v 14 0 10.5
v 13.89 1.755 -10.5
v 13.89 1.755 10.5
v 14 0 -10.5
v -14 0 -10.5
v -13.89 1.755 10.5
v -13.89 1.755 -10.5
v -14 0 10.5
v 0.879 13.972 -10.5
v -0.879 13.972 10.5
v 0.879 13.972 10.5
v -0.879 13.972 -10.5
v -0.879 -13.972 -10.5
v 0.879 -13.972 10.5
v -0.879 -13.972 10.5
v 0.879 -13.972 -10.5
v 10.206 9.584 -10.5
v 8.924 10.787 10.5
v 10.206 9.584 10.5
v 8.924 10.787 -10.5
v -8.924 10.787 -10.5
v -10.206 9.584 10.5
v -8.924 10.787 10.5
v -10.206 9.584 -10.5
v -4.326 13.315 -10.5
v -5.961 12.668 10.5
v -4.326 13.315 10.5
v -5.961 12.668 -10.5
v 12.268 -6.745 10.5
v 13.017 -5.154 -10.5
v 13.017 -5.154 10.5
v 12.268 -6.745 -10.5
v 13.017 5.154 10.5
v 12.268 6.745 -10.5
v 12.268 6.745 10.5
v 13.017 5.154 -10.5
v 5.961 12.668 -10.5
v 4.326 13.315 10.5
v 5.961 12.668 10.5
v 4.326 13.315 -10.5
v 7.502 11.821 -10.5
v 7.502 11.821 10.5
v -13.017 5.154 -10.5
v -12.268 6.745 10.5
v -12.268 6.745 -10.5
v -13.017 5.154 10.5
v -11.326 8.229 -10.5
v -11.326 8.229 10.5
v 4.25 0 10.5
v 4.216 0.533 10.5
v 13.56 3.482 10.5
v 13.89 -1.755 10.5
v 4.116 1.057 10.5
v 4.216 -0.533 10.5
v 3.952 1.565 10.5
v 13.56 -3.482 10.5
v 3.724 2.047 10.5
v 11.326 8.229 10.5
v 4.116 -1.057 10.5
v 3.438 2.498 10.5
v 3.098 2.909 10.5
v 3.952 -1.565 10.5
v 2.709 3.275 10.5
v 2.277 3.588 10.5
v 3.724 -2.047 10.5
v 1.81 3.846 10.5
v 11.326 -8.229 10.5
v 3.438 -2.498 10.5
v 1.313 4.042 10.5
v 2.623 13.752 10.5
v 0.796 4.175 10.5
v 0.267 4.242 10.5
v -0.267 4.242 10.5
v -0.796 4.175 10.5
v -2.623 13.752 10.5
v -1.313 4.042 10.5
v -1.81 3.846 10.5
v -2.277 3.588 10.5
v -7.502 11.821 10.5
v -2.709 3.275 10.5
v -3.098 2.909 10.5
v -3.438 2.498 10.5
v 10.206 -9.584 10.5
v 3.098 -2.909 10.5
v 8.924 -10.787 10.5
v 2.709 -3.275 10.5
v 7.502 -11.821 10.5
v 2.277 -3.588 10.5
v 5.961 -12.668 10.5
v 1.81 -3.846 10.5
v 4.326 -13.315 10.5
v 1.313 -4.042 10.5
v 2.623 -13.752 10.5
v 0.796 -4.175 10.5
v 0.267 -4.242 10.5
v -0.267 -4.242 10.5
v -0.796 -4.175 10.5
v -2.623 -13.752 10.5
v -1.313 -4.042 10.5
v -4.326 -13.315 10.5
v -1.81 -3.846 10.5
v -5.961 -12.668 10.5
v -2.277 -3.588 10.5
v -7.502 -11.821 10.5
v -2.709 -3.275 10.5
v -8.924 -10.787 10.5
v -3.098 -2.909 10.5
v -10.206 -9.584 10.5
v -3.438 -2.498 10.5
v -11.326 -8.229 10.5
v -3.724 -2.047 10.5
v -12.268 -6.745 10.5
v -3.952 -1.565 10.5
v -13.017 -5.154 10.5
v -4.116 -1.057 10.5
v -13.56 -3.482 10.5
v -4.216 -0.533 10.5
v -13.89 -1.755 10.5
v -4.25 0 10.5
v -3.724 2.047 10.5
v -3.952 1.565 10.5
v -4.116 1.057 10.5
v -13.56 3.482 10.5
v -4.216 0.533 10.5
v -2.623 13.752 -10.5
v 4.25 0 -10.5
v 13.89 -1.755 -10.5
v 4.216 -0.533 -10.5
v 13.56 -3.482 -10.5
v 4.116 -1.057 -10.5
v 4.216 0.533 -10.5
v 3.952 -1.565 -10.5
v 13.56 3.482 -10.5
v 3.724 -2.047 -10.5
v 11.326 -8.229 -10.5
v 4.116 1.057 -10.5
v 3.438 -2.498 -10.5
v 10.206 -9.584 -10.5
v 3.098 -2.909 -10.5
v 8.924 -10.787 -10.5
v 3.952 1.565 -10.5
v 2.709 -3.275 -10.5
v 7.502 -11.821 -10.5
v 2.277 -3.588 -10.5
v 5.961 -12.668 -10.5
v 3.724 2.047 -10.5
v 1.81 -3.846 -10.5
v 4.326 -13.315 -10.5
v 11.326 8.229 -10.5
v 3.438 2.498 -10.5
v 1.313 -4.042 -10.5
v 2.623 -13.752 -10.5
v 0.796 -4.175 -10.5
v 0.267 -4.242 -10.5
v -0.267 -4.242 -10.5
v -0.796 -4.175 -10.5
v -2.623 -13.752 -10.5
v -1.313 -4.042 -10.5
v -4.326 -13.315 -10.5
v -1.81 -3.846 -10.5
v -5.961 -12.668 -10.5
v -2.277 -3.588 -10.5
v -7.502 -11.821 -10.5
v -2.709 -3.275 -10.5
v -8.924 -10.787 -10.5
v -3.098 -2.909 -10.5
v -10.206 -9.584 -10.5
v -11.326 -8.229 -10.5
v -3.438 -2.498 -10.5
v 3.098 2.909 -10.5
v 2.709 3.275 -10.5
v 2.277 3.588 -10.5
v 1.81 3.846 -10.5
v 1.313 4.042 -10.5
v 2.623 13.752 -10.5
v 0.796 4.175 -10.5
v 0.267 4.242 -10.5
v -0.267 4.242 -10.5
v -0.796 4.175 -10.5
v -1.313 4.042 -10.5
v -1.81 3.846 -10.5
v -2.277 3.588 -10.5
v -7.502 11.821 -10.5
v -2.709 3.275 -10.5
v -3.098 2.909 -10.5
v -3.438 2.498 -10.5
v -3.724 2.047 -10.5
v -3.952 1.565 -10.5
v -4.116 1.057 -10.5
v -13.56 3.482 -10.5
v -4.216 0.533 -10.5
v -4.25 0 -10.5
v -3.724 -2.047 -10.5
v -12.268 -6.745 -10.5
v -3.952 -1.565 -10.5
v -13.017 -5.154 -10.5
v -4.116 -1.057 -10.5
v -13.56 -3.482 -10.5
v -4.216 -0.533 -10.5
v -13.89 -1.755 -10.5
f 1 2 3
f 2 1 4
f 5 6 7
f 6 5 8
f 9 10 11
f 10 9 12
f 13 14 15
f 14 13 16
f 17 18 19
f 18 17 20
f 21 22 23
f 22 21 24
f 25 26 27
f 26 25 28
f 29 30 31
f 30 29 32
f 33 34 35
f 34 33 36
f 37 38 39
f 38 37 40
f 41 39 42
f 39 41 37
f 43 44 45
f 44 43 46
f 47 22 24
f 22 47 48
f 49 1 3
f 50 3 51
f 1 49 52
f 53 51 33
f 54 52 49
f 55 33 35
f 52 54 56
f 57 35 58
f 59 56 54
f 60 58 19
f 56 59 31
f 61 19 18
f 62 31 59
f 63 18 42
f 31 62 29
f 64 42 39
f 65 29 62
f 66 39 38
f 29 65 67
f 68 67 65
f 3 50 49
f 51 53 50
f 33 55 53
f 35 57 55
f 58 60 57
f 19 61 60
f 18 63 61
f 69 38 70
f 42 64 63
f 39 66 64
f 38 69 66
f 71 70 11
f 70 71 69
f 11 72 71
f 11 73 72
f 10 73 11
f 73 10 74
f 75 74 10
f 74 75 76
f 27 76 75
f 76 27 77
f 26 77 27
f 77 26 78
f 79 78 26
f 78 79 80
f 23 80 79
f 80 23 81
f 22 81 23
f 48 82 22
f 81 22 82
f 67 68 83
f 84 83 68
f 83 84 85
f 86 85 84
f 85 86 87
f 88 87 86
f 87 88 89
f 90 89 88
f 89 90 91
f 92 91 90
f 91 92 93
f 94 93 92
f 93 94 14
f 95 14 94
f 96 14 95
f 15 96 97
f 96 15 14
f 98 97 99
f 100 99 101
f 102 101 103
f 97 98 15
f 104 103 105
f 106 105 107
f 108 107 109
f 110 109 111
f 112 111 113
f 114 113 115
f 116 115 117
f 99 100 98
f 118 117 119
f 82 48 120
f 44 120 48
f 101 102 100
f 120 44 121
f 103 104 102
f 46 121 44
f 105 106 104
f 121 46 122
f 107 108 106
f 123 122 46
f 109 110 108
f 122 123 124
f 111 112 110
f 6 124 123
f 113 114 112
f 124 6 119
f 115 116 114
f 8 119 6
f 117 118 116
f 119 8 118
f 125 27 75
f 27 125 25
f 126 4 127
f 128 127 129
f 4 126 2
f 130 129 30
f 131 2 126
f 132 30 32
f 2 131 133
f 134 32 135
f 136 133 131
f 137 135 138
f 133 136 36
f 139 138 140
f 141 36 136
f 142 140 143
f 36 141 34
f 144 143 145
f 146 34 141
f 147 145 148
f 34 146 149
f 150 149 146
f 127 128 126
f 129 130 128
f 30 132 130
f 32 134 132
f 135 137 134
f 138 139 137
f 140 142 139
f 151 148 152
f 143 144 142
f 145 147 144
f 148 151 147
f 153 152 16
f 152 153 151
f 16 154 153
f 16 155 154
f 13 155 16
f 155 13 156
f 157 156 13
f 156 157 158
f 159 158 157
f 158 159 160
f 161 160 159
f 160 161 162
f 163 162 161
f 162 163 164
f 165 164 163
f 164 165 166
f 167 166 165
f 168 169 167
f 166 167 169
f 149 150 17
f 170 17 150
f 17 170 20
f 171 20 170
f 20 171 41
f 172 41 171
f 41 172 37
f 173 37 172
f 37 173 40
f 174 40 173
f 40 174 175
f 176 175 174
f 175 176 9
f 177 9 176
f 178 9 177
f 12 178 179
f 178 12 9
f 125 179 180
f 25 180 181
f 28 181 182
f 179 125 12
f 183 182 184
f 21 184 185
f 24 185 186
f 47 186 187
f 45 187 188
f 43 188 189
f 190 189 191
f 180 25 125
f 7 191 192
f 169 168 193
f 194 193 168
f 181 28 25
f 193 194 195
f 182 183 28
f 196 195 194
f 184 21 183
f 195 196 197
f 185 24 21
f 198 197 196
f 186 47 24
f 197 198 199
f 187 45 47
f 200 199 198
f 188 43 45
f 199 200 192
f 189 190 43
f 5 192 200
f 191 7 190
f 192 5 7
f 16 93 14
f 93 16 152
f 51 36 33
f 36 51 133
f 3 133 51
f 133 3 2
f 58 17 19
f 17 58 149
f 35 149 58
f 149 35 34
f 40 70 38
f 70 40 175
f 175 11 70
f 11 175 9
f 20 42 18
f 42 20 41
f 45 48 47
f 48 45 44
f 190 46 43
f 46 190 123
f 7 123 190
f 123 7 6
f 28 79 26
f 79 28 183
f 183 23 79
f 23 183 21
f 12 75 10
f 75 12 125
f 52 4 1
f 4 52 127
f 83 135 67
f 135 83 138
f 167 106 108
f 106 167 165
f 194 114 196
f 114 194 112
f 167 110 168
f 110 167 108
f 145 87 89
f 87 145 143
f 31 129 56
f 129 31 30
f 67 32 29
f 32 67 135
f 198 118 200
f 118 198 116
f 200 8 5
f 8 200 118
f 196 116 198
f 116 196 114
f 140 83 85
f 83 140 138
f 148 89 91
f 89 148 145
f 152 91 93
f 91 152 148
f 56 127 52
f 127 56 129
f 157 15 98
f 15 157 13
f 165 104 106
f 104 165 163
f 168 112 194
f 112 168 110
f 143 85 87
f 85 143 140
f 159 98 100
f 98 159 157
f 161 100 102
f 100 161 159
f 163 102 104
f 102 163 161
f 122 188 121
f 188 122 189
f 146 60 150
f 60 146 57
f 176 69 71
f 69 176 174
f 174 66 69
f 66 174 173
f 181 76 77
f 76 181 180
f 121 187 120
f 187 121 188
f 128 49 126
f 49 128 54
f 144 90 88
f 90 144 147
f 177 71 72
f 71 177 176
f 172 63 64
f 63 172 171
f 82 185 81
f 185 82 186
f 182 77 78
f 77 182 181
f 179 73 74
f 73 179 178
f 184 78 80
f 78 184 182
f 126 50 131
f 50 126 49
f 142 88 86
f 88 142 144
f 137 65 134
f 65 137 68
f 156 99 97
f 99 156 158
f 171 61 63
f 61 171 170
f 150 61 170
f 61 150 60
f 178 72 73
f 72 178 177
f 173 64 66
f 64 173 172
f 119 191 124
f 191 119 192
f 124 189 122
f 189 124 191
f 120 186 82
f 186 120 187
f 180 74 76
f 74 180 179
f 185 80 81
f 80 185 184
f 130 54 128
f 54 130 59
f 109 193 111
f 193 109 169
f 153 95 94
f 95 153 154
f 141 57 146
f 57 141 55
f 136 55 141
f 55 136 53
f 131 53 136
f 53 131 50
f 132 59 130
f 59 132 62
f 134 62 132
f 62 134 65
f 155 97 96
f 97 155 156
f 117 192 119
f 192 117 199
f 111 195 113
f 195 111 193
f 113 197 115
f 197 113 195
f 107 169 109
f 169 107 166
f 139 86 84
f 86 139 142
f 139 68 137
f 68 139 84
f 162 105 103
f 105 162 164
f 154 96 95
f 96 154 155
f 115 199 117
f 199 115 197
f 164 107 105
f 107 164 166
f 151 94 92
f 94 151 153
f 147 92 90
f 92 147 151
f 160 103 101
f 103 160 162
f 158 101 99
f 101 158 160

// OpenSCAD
$fn = 50;


difference() {
	union() {
		translate(v = [0, 0, -10.5000000000]) {
			cylinder(h = 21, r = 14.0000000000);
		}
	}
	union() {
		translate(v = [0, 0, -100.0000000000]) {
			cylinder(h = 200, r = 4.2500000000);
		}
	}
}
